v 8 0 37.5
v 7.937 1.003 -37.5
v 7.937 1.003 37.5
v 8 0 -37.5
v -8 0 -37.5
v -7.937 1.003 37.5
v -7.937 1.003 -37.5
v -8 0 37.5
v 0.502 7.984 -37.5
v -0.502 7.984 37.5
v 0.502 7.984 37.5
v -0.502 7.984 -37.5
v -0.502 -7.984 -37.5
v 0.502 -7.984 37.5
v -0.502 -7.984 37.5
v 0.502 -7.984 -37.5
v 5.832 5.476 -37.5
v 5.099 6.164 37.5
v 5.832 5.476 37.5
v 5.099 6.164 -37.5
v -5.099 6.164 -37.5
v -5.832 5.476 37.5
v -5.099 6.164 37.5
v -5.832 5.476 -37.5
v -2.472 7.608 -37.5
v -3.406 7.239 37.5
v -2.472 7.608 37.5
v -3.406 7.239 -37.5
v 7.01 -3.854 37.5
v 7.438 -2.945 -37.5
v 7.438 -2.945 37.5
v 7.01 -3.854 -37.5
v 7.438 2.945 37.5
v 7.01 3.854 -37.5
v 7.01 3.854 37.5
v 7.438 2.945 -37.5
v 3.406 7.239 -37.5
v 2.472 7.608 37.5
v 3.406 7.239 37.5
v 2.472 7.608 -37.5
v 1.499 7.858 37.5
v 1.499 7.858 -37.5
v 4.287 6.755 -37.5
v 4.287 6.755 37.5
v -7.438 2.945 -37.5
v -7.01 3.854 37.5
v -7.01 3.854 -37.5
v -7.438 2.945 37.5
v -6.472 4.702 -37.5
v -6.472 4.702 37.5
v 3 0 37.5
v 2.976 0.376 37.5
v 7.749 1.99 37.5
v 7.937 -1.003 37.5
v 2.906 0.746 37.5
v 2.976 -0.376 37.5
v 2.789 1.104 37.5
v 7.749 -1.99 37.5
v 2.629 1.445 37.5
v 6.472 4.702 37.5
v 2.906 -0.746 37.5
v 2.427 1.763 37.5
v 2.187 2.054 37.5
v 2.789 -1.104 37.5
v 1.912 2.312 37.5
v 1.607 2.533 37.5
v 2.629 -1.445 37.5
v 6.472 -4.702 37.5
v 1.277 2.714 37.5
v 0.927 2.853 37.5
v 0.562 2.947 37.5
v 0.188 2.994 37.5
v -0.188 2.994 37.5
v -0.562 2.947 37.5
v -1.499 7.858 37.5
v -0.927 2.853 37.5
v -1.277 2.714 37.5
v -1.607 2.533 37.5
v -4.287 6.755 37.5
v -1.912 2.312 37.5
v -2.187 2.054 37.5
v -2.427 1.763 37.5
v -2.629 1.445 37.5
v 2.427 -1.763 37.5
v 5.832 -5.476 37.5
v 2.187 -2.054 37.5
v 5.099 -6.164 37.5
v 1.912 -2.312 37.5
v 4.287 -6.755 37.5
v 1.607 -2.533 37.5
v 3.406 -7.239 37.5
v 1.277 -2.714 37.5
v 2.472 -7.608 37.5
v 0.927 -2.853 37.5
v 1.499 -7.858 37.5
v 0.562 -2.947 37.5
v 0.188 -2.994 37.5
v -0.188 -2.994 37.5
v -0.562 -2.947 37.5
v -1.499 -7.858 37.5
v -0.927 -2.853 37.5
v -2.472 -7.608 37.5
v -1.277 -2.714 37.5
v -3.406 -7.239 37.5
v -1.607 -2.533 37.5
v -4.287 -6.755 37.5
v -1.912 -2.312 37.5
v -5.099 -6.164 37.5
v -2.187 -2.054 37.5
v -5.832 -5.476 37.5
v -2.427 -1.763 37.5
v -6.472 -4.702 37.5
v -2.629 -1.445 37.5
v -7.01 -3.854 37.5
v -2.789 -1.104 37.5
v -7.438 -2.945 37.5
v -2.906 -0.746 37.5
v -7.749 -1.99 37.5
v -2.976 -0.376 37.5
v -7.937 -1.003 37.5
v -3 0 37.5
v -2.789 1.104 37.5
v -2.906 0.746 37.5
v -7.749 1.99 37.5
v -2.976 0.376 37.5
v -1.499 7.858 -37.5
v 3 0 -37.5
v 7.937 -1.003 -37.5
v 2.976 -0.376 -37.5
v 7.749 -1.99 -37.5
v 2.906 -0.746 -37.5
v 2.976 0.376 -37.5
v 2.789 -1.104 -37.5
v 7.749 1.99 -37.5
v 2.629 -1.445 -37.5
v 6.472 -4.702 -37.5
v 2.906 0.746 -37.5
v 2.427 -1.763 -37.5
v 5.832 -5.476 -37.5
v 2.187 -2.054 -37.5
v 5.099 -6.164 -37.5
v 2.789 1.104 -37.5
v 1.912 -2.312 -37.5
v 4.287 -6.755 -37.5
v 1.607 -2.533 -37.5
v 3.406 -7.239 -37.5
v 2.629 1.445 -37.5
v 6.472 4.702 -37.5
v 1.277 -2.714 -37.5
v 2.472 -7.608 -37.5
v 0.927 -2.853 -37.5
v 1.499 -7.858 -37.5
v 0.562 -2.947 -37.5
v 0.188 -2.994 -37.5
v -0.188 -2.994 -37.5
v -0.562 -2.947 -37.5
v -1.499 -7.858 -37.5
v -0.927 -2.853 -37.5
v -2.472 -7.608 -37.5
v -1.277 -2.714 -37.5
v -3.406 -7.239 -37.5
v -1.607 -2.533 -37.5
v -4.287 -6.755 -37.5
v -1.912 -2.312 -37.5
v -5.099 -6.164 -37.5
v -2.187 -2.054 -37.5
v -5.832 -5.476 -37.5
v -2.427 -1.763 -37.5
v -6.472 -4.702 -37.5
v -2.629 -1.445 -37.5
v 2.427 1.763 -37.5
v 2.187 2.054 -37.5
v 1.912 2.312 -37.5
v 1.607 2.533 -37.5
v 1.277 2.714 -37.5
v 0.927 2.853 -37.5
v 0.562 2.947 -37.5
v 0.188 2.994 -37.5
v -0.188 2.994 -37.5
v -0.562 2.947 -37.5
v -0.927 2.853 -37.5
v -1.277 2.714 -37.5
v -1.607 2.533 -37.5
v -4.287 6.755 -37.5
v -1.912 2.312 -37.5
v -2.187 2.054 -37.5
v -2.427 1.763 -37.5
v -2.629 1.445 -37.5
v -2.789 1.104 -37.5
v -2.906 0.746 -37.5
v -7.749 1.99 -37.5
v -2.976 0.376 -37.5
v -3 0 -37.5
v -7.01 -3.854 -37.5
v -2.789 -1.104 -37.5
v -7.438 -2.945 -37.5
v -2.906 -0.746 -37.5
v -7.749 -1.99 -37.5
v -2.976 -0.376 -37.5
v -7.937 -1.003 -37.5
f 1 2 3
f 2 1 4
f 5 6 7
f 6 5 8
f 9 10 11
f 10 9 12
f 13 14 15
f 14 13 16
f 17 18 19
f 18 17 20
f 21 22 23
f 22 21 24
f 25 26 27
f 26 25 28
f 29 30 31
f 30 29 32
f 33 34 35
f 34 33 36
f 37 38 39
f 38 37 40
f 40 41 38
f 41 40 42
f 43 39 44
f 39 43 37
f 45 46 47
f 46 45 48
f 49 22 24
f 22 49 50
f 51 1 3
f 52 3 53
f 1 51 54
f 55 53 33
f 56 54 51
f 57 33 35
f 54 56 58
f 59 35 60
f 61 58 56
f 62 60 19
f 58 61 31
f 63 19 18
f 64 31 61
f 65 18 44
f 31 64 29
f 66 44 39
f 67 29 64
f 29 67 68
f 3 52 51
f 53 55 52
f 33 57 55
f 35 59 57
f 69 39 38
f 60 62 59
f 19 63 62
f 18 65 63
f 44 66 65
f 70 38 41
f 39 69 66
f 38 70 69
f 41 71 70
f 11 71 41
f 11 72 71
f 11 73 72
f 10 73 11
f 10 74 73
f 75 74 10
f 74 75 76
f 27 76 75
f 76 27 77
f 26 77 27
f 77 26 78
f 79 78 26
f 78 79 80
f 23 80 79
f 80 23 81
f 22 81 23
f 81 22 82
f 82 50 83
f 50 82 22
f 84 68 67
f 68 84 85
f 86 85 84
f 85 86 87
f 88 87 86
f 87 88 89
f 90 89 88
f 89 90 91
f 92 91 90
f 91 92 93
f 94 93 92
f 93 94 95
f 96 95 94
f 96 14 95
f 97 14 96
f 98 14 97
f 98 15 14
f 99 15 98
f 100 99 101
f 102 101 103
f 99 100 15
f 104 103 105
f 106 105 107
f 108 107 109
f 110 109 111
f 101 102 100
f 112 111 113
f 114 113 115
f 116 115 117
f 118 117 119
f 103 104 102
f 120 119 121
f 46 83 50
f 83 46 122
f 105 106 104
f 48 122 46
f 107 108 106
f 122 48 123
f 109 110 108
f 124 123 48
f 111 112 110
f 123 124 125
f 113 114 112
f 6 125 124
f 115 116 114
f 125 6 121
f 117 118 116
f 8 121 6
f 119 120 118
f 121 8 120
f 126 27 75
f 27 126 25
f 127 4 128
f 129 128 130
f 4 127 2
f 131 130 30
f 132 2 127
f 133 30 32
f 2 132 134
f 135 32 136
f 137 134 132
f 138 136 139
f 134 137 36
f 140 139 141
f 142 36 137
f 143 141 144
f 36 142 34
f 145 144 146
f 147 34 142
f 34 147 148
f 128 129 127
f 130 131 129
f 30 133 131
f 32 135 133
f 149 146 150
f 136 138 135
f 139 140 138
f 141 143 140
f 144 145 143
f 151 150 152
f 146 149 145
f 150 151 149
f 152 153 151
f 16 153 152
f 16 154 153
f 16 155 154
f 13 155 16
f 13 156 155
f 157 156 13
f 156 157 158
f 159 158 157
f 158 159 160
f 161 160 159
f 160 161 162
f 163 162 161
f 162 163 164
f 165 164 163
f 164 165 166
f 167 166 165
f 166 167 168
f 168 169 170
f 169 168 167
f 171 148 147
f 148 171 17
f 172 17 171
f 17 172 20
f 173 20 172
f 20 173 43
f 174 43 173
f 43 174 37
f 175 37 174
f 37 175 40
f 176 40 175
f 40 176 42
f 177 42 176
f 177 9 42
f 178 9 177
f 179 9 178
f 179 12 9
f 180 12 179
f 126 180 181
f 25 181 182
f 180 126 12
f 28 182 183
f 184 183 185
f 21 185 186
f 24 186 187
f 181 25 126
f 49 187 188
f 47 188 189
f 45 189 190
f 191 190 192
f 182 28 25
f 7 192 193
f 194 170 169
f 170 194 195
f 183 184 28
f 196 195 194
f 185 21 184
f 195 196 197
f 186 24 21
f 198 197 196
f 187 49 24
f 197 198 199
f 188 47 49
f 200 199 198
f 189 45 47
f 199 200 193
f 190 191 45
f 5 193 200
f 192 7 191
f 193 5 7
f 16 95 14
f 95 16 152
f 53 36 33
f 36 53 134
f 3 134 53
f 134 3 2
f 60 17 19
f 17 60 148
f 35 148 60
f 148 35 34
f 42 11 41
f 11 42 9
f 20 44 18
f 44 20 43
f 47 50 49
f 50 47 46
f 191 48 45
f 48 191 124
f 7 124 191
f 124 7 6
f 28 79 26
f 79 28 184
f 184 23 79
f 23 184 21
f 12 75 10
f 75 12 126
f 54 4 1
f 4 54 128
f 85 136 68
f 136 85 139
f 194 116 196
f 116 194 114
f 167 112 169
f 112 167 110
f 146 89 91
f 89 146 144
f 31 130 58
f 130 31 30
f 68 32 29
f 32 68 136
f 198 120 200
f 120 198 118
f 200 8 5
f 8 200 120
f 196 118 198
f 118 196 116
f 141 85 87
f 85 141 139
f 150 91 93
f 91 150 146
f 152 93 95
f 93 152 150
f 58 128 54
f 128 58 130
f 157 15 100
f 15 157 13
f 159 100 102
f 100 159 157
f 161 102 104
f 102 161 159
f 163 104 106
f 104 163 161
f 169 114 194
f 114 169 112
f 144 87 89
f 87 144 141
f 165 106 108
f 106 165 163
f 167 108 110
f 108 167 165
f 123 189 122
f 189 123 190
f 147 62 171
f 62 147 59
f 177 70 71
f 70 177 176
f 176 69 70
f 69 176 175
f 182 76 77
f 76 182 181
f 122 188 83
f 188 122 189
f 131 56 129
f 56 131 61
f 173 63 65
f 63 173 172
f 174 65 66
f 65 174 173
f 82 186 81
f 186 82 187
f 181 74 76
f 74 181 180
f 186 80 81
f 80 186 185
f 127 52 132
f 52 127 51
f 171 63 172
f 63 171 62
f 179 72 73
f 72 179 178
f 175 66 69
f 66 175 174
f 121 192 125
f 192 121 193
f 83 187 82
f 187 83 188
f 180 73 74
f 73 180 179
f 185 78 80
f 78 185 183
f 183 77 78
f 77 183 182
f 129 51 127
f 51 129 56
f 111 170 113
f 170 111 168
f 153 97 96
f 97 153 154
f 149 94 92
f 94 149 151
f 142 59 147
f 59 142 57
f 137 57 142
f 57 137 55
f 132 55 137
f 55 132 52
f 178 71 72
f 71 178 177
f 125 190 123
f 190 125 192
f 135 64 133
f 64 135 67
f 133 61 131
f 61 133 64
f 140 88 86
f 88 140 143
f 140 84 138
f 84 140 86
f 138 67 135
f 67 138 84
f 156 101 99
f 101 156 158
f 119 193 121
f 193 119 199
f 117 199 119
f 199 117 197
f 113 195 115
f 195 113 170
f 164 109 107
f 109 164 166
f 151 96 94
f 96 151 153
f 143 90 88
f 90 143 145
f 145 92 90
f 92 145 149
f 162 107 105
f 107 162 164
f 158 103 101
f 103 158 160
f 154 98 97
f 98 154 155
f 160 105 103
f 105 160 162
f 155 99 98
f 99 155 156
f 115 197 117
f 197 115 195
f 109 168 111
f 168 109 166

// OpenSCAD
$fn = 50;


difference() {
	union() {
		translate(v = [0, 0, -37.5000000000]) {
			cylinder(h = 75, r = 8.0000000000);
		}
	}
	union() {
		translate(v = [0, 0, -100.0000000000]) {
			cylinder(h = 200, r = 3.0000000000);
		}
	}
}
